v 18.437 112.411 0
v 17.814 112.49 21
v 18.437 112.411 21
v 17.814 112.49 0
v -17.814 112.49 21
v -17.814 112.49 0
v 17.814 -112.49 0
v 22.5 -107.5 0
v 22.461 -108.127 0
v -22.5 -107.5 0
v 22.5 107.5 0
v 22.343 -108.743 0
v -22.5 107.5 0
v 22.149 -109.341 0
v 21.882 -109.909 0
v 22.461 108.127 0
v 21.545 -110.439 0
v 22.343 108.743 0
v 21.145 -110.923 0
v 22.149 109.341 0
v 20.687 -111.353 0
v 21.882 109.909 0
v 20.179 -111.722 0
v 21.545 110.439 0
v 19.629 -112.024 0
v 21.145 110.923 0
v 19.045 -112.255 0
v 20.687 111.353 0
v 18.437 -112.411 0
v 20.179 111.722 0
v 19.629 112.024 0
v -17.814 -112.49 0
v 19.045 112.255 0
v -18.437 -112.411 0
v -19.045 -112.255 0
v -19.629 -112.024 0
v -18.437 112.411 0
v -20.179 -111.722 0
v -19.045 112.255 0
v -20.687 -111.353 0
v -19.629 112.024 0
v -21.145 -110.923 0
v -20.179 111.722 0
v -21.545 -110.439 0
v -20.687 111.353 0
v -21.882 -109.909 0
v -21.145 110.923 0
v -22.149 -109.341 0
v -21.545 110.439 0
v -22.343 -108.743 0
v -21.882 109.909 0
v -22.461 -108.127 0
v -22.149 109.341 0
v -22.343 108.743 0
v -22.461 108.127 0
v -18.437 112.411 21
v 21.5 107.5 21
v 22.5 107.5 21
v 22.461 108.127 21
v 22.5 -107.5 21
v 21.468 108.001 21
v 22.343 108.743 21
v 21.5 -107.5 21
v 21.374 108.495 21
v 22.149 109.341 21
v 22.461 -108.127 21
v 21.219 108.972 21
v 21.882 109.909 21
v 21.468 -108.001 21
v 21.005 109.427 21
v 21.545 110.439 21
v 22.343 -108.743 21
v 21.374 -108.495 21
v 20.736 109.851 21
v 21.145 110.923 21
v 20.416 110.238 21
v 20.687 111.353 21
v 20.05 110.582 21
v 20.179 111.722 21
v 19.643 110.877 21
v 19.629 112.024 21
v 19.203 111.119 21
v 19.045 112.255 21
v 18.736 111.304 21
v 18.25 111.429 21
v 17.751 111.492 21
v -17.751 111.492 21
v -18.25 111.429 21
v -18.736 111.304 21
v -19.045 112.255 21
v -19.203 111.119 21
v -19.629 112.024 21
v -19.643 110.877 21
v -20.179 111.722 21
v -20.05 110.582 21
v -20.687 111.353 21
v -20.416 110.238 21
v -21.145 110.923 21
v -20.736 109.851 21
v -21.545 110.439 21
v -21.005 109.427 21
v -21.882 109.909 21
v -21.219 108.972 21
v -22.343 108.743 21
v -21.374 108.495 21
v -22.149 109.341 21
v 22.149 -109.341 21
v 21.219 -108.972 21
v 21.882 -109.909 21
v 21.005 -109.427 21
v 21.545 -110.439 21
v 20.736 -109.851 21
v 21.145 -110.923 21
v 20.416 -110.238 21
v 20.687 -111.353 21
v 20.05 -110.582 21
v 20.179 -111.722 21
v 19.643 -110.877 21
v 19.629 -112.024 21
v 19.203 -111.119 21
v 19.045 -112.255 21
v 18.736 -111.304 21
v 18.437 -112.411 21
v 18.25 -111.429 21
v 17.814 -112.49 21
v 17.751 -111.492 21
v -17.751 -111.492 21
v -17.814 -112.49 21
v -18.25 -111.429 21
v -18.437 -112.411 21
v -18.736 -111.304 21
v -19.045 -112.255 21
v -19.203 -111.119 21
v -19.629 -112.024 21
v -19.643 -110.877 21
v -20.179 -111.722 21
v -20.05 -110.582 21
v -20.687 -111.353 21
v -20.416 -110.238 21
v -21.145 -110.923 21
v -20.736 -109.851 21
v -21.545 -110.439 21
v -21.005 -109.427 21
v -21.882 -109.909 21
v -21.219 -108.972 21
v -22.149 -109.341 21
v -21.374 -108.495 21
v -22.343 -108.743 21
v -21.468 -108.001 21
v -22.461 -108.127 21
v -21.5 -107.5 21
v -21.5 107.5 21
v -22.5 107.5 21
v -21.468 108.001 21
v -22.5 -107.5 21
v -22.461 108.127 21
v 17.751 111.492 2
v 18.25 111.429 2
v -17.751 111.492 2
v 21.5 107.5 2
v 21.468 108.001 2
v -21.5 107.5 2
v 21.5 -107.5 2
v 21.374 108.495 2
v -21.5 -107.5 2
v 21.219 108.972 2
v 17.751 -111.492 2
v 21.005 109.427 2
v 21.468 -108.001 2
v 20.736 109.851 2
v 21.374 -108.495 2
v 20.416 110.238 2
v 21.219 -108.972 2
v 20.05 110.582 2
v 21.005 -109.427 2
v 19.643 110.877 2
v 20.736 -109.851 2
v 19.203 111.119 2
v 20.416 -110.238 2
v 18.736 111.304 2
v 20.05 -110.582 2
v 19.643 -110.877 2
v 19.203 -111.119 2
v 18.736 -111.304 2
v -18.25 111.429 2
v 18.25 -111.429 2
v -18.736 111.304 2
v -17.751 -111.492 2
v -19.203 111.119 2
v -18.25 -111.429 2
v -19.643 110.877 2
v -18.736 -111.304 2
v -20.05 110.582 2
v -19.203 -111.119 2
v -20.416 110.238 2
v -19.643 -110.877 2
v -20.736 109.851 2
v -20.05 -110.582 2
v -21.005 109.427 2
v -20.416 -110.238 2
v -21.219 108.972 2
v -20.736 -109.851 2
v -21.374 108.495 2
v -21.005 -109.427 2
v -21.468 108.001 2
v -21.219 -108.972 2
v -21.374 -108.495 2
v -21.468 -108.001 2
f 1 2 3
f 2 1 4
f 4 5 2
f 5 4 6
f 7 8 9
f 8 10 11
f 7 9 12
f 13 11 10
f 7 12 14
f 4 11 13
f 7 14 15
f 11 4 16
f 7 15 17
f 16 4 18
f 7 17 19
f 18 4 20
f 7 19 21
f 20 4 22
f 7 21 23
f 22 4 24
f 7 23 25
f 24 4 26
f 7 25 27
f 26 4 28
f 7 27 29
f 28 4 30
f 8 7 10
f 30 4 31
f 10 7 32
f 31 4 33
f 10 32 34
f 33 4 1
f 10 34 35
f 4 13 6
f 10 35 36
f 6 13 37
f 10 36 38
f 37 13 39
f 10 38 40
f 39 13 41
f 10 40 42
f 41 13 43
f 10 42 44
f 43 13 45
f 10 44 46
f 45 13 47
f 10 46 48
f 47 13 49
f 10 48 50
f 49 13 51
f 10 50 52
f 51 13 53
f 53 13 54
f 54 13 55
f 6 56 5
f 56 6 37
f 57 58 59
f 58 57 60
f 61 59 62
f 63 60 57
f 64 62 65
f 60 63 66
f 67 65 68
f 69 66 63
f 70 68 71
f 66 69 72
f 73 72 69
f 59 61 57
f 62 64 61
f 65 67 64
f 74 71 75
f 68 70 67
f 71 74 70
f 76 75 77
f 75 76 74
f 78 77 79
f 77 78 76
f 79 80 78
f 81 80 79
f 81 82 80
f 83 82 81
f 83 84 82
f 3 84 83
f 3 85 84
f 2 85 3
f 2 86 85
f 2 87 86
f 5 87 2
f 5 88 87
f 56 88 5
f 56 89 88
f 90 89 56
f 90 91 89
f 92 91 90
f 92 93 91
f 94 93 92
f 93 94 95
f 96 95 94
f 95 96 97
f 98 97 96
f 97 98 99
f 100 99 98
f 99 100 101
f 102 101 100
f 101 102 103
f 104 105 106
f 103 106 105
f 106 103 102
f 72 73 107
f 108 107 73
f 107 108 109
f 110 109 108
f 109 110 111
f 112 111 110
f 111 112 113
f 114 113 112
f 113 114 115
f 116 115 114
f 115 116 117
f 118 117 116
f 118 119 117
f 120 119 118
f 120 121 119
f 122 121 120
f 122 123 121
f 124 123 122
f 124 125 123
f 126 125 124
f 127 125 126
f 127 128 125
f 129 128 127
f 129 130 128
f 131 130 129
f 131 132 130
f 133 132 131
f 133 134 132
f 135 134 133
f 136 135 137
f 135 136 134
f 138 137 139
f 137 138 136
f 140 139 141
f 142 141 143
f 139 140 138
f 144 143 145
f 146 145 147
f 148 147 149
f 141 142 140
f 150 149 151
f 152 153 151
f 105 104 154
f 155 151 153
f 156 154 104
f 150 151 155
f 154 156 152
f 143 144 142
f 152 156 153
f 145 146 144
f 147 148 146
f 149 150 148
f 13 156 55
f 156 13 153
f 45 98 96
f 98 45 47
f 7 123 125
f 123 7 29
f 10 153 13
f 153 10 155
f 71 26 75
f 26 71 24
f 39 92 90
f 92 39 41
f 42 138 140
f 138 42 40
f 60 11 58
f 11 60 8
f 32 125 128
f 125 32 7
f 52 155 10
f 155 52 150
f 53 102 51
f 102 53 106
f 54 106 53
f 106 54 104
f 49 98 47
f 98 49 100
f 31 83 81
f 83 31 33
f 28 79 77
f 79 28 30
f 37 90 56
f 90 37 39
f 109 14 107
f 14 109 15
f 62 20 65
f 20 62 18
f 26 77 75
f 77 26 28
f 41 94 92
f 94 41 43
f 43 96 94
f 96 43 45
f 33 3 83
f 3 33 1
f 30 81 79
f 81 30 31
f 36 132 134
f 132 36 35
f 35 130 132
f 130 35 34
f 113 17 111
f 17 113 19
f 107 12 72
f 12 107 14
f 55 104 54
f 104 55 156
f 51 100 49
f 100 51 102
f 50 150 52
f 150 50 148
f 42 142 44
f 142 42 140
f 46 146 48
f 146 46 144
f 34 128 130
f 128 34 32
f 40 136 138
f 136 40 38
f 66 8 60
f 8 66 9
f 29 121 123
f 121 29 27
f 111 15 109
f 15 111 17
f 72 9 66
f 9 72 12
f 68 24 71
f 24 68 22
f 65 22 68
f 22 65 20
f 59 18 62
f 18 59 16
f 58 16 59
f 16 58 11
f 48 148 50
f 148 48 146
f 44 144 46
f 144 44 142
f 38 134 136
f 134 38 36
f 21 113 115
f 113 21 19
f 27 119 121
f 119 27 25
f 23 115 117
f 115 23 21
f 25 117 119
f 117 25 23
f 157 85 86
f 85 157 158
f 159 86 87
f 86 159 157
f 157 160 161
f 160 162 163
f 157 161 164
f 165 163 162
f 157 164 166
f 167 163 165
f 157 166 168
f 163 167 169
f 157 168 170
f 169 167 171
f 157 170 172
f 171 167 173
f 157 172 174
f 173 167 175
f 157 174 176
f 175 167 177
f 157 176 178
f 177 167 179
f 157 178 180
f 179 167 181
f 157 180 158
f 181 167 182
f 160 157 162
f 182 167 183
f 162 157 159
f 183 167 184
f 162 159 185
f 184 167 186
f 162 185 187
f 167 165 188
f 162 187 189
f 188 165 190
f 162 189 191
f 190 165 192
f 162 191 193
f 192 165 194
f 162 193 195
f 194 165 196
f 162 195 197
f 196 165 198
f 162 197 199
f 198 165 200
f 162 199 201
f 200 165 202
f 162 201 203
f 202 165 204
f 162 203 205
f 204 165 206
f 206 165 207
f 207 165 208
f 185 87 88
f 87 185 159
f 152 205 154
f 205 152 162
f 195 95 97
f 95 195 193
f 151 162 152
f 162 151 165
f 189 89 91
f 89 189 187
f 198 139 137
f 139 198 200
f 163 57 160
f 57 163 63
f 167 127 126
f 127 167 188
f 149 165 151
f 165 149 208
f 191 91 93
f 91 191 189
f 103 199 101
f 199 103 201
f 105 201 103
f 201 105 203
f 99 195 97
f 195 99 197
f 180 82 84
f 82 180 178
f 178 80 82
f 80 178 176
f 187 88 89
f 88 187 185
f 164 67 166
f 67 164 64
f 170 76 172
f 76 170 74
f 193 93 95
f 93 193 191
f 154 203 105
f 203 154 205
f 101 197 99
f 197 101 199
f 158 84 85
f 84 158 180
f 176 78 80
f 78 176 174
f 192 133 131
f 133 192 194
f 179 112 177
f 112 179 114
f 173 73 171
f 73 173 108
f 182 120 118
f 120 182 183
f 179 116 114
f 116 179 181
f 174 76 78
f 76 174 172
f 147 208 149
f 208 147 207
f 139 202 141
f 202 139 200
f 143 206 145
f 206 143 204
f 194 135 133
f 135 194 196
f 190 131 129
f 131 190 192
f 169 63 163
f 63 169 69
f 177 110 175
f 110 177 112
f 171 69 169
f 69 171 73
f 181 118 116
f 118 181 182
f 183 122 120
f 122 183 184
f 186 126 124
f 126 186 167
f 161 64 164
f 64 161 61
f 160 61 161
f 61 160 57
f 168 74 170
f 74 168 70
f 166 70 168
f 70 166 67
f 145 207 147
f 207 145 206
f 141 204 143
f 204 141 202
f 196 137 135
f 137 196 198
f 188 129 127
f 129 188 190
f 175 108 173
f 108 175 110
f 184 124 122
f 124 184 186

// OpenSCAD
$fn = 50;


difference() {
	union() {
		hull() {
			translate(v = [-17.5000000000, 107.5000000000, 0]) {
				cylinder(h = 21, r = 5);
			}
			translate(v = [17.5000000000, 107.5000000000, 0]) {
				cylinder(h = 21, r = 5);
			}
			translate(v = [-17.5000000000, -107.5000000000, 0]) {
				cylinder(h = 21, r = 5);
			}
			translate(v = [17.5000000000, -107.5000000000, 0]) {
				cylinder(h = 21, r = 5);
			}
		}
	}
	union() {
		translate(v = [0, 0, 2]) {
			hull() {
				translate(v = [-17.5000000000, 107.5000000000, 0]) {
					cylinder(h = 19, r = 4);
				}
				translate(v = [17.5000000000, 107.5000000000, 0]) {
					cylinder(h = 19, r = 4);
				}
				translate(v = [-17.5000000000, -107.5000000000, 0]) {
					cylinder(h = 19, r = 4);
				}
				translate(v = [17.5000000000, -107.5000000000, 0]) {
					cylinder(h = 19, r = 4);
				}
			}
		}
	}
}
